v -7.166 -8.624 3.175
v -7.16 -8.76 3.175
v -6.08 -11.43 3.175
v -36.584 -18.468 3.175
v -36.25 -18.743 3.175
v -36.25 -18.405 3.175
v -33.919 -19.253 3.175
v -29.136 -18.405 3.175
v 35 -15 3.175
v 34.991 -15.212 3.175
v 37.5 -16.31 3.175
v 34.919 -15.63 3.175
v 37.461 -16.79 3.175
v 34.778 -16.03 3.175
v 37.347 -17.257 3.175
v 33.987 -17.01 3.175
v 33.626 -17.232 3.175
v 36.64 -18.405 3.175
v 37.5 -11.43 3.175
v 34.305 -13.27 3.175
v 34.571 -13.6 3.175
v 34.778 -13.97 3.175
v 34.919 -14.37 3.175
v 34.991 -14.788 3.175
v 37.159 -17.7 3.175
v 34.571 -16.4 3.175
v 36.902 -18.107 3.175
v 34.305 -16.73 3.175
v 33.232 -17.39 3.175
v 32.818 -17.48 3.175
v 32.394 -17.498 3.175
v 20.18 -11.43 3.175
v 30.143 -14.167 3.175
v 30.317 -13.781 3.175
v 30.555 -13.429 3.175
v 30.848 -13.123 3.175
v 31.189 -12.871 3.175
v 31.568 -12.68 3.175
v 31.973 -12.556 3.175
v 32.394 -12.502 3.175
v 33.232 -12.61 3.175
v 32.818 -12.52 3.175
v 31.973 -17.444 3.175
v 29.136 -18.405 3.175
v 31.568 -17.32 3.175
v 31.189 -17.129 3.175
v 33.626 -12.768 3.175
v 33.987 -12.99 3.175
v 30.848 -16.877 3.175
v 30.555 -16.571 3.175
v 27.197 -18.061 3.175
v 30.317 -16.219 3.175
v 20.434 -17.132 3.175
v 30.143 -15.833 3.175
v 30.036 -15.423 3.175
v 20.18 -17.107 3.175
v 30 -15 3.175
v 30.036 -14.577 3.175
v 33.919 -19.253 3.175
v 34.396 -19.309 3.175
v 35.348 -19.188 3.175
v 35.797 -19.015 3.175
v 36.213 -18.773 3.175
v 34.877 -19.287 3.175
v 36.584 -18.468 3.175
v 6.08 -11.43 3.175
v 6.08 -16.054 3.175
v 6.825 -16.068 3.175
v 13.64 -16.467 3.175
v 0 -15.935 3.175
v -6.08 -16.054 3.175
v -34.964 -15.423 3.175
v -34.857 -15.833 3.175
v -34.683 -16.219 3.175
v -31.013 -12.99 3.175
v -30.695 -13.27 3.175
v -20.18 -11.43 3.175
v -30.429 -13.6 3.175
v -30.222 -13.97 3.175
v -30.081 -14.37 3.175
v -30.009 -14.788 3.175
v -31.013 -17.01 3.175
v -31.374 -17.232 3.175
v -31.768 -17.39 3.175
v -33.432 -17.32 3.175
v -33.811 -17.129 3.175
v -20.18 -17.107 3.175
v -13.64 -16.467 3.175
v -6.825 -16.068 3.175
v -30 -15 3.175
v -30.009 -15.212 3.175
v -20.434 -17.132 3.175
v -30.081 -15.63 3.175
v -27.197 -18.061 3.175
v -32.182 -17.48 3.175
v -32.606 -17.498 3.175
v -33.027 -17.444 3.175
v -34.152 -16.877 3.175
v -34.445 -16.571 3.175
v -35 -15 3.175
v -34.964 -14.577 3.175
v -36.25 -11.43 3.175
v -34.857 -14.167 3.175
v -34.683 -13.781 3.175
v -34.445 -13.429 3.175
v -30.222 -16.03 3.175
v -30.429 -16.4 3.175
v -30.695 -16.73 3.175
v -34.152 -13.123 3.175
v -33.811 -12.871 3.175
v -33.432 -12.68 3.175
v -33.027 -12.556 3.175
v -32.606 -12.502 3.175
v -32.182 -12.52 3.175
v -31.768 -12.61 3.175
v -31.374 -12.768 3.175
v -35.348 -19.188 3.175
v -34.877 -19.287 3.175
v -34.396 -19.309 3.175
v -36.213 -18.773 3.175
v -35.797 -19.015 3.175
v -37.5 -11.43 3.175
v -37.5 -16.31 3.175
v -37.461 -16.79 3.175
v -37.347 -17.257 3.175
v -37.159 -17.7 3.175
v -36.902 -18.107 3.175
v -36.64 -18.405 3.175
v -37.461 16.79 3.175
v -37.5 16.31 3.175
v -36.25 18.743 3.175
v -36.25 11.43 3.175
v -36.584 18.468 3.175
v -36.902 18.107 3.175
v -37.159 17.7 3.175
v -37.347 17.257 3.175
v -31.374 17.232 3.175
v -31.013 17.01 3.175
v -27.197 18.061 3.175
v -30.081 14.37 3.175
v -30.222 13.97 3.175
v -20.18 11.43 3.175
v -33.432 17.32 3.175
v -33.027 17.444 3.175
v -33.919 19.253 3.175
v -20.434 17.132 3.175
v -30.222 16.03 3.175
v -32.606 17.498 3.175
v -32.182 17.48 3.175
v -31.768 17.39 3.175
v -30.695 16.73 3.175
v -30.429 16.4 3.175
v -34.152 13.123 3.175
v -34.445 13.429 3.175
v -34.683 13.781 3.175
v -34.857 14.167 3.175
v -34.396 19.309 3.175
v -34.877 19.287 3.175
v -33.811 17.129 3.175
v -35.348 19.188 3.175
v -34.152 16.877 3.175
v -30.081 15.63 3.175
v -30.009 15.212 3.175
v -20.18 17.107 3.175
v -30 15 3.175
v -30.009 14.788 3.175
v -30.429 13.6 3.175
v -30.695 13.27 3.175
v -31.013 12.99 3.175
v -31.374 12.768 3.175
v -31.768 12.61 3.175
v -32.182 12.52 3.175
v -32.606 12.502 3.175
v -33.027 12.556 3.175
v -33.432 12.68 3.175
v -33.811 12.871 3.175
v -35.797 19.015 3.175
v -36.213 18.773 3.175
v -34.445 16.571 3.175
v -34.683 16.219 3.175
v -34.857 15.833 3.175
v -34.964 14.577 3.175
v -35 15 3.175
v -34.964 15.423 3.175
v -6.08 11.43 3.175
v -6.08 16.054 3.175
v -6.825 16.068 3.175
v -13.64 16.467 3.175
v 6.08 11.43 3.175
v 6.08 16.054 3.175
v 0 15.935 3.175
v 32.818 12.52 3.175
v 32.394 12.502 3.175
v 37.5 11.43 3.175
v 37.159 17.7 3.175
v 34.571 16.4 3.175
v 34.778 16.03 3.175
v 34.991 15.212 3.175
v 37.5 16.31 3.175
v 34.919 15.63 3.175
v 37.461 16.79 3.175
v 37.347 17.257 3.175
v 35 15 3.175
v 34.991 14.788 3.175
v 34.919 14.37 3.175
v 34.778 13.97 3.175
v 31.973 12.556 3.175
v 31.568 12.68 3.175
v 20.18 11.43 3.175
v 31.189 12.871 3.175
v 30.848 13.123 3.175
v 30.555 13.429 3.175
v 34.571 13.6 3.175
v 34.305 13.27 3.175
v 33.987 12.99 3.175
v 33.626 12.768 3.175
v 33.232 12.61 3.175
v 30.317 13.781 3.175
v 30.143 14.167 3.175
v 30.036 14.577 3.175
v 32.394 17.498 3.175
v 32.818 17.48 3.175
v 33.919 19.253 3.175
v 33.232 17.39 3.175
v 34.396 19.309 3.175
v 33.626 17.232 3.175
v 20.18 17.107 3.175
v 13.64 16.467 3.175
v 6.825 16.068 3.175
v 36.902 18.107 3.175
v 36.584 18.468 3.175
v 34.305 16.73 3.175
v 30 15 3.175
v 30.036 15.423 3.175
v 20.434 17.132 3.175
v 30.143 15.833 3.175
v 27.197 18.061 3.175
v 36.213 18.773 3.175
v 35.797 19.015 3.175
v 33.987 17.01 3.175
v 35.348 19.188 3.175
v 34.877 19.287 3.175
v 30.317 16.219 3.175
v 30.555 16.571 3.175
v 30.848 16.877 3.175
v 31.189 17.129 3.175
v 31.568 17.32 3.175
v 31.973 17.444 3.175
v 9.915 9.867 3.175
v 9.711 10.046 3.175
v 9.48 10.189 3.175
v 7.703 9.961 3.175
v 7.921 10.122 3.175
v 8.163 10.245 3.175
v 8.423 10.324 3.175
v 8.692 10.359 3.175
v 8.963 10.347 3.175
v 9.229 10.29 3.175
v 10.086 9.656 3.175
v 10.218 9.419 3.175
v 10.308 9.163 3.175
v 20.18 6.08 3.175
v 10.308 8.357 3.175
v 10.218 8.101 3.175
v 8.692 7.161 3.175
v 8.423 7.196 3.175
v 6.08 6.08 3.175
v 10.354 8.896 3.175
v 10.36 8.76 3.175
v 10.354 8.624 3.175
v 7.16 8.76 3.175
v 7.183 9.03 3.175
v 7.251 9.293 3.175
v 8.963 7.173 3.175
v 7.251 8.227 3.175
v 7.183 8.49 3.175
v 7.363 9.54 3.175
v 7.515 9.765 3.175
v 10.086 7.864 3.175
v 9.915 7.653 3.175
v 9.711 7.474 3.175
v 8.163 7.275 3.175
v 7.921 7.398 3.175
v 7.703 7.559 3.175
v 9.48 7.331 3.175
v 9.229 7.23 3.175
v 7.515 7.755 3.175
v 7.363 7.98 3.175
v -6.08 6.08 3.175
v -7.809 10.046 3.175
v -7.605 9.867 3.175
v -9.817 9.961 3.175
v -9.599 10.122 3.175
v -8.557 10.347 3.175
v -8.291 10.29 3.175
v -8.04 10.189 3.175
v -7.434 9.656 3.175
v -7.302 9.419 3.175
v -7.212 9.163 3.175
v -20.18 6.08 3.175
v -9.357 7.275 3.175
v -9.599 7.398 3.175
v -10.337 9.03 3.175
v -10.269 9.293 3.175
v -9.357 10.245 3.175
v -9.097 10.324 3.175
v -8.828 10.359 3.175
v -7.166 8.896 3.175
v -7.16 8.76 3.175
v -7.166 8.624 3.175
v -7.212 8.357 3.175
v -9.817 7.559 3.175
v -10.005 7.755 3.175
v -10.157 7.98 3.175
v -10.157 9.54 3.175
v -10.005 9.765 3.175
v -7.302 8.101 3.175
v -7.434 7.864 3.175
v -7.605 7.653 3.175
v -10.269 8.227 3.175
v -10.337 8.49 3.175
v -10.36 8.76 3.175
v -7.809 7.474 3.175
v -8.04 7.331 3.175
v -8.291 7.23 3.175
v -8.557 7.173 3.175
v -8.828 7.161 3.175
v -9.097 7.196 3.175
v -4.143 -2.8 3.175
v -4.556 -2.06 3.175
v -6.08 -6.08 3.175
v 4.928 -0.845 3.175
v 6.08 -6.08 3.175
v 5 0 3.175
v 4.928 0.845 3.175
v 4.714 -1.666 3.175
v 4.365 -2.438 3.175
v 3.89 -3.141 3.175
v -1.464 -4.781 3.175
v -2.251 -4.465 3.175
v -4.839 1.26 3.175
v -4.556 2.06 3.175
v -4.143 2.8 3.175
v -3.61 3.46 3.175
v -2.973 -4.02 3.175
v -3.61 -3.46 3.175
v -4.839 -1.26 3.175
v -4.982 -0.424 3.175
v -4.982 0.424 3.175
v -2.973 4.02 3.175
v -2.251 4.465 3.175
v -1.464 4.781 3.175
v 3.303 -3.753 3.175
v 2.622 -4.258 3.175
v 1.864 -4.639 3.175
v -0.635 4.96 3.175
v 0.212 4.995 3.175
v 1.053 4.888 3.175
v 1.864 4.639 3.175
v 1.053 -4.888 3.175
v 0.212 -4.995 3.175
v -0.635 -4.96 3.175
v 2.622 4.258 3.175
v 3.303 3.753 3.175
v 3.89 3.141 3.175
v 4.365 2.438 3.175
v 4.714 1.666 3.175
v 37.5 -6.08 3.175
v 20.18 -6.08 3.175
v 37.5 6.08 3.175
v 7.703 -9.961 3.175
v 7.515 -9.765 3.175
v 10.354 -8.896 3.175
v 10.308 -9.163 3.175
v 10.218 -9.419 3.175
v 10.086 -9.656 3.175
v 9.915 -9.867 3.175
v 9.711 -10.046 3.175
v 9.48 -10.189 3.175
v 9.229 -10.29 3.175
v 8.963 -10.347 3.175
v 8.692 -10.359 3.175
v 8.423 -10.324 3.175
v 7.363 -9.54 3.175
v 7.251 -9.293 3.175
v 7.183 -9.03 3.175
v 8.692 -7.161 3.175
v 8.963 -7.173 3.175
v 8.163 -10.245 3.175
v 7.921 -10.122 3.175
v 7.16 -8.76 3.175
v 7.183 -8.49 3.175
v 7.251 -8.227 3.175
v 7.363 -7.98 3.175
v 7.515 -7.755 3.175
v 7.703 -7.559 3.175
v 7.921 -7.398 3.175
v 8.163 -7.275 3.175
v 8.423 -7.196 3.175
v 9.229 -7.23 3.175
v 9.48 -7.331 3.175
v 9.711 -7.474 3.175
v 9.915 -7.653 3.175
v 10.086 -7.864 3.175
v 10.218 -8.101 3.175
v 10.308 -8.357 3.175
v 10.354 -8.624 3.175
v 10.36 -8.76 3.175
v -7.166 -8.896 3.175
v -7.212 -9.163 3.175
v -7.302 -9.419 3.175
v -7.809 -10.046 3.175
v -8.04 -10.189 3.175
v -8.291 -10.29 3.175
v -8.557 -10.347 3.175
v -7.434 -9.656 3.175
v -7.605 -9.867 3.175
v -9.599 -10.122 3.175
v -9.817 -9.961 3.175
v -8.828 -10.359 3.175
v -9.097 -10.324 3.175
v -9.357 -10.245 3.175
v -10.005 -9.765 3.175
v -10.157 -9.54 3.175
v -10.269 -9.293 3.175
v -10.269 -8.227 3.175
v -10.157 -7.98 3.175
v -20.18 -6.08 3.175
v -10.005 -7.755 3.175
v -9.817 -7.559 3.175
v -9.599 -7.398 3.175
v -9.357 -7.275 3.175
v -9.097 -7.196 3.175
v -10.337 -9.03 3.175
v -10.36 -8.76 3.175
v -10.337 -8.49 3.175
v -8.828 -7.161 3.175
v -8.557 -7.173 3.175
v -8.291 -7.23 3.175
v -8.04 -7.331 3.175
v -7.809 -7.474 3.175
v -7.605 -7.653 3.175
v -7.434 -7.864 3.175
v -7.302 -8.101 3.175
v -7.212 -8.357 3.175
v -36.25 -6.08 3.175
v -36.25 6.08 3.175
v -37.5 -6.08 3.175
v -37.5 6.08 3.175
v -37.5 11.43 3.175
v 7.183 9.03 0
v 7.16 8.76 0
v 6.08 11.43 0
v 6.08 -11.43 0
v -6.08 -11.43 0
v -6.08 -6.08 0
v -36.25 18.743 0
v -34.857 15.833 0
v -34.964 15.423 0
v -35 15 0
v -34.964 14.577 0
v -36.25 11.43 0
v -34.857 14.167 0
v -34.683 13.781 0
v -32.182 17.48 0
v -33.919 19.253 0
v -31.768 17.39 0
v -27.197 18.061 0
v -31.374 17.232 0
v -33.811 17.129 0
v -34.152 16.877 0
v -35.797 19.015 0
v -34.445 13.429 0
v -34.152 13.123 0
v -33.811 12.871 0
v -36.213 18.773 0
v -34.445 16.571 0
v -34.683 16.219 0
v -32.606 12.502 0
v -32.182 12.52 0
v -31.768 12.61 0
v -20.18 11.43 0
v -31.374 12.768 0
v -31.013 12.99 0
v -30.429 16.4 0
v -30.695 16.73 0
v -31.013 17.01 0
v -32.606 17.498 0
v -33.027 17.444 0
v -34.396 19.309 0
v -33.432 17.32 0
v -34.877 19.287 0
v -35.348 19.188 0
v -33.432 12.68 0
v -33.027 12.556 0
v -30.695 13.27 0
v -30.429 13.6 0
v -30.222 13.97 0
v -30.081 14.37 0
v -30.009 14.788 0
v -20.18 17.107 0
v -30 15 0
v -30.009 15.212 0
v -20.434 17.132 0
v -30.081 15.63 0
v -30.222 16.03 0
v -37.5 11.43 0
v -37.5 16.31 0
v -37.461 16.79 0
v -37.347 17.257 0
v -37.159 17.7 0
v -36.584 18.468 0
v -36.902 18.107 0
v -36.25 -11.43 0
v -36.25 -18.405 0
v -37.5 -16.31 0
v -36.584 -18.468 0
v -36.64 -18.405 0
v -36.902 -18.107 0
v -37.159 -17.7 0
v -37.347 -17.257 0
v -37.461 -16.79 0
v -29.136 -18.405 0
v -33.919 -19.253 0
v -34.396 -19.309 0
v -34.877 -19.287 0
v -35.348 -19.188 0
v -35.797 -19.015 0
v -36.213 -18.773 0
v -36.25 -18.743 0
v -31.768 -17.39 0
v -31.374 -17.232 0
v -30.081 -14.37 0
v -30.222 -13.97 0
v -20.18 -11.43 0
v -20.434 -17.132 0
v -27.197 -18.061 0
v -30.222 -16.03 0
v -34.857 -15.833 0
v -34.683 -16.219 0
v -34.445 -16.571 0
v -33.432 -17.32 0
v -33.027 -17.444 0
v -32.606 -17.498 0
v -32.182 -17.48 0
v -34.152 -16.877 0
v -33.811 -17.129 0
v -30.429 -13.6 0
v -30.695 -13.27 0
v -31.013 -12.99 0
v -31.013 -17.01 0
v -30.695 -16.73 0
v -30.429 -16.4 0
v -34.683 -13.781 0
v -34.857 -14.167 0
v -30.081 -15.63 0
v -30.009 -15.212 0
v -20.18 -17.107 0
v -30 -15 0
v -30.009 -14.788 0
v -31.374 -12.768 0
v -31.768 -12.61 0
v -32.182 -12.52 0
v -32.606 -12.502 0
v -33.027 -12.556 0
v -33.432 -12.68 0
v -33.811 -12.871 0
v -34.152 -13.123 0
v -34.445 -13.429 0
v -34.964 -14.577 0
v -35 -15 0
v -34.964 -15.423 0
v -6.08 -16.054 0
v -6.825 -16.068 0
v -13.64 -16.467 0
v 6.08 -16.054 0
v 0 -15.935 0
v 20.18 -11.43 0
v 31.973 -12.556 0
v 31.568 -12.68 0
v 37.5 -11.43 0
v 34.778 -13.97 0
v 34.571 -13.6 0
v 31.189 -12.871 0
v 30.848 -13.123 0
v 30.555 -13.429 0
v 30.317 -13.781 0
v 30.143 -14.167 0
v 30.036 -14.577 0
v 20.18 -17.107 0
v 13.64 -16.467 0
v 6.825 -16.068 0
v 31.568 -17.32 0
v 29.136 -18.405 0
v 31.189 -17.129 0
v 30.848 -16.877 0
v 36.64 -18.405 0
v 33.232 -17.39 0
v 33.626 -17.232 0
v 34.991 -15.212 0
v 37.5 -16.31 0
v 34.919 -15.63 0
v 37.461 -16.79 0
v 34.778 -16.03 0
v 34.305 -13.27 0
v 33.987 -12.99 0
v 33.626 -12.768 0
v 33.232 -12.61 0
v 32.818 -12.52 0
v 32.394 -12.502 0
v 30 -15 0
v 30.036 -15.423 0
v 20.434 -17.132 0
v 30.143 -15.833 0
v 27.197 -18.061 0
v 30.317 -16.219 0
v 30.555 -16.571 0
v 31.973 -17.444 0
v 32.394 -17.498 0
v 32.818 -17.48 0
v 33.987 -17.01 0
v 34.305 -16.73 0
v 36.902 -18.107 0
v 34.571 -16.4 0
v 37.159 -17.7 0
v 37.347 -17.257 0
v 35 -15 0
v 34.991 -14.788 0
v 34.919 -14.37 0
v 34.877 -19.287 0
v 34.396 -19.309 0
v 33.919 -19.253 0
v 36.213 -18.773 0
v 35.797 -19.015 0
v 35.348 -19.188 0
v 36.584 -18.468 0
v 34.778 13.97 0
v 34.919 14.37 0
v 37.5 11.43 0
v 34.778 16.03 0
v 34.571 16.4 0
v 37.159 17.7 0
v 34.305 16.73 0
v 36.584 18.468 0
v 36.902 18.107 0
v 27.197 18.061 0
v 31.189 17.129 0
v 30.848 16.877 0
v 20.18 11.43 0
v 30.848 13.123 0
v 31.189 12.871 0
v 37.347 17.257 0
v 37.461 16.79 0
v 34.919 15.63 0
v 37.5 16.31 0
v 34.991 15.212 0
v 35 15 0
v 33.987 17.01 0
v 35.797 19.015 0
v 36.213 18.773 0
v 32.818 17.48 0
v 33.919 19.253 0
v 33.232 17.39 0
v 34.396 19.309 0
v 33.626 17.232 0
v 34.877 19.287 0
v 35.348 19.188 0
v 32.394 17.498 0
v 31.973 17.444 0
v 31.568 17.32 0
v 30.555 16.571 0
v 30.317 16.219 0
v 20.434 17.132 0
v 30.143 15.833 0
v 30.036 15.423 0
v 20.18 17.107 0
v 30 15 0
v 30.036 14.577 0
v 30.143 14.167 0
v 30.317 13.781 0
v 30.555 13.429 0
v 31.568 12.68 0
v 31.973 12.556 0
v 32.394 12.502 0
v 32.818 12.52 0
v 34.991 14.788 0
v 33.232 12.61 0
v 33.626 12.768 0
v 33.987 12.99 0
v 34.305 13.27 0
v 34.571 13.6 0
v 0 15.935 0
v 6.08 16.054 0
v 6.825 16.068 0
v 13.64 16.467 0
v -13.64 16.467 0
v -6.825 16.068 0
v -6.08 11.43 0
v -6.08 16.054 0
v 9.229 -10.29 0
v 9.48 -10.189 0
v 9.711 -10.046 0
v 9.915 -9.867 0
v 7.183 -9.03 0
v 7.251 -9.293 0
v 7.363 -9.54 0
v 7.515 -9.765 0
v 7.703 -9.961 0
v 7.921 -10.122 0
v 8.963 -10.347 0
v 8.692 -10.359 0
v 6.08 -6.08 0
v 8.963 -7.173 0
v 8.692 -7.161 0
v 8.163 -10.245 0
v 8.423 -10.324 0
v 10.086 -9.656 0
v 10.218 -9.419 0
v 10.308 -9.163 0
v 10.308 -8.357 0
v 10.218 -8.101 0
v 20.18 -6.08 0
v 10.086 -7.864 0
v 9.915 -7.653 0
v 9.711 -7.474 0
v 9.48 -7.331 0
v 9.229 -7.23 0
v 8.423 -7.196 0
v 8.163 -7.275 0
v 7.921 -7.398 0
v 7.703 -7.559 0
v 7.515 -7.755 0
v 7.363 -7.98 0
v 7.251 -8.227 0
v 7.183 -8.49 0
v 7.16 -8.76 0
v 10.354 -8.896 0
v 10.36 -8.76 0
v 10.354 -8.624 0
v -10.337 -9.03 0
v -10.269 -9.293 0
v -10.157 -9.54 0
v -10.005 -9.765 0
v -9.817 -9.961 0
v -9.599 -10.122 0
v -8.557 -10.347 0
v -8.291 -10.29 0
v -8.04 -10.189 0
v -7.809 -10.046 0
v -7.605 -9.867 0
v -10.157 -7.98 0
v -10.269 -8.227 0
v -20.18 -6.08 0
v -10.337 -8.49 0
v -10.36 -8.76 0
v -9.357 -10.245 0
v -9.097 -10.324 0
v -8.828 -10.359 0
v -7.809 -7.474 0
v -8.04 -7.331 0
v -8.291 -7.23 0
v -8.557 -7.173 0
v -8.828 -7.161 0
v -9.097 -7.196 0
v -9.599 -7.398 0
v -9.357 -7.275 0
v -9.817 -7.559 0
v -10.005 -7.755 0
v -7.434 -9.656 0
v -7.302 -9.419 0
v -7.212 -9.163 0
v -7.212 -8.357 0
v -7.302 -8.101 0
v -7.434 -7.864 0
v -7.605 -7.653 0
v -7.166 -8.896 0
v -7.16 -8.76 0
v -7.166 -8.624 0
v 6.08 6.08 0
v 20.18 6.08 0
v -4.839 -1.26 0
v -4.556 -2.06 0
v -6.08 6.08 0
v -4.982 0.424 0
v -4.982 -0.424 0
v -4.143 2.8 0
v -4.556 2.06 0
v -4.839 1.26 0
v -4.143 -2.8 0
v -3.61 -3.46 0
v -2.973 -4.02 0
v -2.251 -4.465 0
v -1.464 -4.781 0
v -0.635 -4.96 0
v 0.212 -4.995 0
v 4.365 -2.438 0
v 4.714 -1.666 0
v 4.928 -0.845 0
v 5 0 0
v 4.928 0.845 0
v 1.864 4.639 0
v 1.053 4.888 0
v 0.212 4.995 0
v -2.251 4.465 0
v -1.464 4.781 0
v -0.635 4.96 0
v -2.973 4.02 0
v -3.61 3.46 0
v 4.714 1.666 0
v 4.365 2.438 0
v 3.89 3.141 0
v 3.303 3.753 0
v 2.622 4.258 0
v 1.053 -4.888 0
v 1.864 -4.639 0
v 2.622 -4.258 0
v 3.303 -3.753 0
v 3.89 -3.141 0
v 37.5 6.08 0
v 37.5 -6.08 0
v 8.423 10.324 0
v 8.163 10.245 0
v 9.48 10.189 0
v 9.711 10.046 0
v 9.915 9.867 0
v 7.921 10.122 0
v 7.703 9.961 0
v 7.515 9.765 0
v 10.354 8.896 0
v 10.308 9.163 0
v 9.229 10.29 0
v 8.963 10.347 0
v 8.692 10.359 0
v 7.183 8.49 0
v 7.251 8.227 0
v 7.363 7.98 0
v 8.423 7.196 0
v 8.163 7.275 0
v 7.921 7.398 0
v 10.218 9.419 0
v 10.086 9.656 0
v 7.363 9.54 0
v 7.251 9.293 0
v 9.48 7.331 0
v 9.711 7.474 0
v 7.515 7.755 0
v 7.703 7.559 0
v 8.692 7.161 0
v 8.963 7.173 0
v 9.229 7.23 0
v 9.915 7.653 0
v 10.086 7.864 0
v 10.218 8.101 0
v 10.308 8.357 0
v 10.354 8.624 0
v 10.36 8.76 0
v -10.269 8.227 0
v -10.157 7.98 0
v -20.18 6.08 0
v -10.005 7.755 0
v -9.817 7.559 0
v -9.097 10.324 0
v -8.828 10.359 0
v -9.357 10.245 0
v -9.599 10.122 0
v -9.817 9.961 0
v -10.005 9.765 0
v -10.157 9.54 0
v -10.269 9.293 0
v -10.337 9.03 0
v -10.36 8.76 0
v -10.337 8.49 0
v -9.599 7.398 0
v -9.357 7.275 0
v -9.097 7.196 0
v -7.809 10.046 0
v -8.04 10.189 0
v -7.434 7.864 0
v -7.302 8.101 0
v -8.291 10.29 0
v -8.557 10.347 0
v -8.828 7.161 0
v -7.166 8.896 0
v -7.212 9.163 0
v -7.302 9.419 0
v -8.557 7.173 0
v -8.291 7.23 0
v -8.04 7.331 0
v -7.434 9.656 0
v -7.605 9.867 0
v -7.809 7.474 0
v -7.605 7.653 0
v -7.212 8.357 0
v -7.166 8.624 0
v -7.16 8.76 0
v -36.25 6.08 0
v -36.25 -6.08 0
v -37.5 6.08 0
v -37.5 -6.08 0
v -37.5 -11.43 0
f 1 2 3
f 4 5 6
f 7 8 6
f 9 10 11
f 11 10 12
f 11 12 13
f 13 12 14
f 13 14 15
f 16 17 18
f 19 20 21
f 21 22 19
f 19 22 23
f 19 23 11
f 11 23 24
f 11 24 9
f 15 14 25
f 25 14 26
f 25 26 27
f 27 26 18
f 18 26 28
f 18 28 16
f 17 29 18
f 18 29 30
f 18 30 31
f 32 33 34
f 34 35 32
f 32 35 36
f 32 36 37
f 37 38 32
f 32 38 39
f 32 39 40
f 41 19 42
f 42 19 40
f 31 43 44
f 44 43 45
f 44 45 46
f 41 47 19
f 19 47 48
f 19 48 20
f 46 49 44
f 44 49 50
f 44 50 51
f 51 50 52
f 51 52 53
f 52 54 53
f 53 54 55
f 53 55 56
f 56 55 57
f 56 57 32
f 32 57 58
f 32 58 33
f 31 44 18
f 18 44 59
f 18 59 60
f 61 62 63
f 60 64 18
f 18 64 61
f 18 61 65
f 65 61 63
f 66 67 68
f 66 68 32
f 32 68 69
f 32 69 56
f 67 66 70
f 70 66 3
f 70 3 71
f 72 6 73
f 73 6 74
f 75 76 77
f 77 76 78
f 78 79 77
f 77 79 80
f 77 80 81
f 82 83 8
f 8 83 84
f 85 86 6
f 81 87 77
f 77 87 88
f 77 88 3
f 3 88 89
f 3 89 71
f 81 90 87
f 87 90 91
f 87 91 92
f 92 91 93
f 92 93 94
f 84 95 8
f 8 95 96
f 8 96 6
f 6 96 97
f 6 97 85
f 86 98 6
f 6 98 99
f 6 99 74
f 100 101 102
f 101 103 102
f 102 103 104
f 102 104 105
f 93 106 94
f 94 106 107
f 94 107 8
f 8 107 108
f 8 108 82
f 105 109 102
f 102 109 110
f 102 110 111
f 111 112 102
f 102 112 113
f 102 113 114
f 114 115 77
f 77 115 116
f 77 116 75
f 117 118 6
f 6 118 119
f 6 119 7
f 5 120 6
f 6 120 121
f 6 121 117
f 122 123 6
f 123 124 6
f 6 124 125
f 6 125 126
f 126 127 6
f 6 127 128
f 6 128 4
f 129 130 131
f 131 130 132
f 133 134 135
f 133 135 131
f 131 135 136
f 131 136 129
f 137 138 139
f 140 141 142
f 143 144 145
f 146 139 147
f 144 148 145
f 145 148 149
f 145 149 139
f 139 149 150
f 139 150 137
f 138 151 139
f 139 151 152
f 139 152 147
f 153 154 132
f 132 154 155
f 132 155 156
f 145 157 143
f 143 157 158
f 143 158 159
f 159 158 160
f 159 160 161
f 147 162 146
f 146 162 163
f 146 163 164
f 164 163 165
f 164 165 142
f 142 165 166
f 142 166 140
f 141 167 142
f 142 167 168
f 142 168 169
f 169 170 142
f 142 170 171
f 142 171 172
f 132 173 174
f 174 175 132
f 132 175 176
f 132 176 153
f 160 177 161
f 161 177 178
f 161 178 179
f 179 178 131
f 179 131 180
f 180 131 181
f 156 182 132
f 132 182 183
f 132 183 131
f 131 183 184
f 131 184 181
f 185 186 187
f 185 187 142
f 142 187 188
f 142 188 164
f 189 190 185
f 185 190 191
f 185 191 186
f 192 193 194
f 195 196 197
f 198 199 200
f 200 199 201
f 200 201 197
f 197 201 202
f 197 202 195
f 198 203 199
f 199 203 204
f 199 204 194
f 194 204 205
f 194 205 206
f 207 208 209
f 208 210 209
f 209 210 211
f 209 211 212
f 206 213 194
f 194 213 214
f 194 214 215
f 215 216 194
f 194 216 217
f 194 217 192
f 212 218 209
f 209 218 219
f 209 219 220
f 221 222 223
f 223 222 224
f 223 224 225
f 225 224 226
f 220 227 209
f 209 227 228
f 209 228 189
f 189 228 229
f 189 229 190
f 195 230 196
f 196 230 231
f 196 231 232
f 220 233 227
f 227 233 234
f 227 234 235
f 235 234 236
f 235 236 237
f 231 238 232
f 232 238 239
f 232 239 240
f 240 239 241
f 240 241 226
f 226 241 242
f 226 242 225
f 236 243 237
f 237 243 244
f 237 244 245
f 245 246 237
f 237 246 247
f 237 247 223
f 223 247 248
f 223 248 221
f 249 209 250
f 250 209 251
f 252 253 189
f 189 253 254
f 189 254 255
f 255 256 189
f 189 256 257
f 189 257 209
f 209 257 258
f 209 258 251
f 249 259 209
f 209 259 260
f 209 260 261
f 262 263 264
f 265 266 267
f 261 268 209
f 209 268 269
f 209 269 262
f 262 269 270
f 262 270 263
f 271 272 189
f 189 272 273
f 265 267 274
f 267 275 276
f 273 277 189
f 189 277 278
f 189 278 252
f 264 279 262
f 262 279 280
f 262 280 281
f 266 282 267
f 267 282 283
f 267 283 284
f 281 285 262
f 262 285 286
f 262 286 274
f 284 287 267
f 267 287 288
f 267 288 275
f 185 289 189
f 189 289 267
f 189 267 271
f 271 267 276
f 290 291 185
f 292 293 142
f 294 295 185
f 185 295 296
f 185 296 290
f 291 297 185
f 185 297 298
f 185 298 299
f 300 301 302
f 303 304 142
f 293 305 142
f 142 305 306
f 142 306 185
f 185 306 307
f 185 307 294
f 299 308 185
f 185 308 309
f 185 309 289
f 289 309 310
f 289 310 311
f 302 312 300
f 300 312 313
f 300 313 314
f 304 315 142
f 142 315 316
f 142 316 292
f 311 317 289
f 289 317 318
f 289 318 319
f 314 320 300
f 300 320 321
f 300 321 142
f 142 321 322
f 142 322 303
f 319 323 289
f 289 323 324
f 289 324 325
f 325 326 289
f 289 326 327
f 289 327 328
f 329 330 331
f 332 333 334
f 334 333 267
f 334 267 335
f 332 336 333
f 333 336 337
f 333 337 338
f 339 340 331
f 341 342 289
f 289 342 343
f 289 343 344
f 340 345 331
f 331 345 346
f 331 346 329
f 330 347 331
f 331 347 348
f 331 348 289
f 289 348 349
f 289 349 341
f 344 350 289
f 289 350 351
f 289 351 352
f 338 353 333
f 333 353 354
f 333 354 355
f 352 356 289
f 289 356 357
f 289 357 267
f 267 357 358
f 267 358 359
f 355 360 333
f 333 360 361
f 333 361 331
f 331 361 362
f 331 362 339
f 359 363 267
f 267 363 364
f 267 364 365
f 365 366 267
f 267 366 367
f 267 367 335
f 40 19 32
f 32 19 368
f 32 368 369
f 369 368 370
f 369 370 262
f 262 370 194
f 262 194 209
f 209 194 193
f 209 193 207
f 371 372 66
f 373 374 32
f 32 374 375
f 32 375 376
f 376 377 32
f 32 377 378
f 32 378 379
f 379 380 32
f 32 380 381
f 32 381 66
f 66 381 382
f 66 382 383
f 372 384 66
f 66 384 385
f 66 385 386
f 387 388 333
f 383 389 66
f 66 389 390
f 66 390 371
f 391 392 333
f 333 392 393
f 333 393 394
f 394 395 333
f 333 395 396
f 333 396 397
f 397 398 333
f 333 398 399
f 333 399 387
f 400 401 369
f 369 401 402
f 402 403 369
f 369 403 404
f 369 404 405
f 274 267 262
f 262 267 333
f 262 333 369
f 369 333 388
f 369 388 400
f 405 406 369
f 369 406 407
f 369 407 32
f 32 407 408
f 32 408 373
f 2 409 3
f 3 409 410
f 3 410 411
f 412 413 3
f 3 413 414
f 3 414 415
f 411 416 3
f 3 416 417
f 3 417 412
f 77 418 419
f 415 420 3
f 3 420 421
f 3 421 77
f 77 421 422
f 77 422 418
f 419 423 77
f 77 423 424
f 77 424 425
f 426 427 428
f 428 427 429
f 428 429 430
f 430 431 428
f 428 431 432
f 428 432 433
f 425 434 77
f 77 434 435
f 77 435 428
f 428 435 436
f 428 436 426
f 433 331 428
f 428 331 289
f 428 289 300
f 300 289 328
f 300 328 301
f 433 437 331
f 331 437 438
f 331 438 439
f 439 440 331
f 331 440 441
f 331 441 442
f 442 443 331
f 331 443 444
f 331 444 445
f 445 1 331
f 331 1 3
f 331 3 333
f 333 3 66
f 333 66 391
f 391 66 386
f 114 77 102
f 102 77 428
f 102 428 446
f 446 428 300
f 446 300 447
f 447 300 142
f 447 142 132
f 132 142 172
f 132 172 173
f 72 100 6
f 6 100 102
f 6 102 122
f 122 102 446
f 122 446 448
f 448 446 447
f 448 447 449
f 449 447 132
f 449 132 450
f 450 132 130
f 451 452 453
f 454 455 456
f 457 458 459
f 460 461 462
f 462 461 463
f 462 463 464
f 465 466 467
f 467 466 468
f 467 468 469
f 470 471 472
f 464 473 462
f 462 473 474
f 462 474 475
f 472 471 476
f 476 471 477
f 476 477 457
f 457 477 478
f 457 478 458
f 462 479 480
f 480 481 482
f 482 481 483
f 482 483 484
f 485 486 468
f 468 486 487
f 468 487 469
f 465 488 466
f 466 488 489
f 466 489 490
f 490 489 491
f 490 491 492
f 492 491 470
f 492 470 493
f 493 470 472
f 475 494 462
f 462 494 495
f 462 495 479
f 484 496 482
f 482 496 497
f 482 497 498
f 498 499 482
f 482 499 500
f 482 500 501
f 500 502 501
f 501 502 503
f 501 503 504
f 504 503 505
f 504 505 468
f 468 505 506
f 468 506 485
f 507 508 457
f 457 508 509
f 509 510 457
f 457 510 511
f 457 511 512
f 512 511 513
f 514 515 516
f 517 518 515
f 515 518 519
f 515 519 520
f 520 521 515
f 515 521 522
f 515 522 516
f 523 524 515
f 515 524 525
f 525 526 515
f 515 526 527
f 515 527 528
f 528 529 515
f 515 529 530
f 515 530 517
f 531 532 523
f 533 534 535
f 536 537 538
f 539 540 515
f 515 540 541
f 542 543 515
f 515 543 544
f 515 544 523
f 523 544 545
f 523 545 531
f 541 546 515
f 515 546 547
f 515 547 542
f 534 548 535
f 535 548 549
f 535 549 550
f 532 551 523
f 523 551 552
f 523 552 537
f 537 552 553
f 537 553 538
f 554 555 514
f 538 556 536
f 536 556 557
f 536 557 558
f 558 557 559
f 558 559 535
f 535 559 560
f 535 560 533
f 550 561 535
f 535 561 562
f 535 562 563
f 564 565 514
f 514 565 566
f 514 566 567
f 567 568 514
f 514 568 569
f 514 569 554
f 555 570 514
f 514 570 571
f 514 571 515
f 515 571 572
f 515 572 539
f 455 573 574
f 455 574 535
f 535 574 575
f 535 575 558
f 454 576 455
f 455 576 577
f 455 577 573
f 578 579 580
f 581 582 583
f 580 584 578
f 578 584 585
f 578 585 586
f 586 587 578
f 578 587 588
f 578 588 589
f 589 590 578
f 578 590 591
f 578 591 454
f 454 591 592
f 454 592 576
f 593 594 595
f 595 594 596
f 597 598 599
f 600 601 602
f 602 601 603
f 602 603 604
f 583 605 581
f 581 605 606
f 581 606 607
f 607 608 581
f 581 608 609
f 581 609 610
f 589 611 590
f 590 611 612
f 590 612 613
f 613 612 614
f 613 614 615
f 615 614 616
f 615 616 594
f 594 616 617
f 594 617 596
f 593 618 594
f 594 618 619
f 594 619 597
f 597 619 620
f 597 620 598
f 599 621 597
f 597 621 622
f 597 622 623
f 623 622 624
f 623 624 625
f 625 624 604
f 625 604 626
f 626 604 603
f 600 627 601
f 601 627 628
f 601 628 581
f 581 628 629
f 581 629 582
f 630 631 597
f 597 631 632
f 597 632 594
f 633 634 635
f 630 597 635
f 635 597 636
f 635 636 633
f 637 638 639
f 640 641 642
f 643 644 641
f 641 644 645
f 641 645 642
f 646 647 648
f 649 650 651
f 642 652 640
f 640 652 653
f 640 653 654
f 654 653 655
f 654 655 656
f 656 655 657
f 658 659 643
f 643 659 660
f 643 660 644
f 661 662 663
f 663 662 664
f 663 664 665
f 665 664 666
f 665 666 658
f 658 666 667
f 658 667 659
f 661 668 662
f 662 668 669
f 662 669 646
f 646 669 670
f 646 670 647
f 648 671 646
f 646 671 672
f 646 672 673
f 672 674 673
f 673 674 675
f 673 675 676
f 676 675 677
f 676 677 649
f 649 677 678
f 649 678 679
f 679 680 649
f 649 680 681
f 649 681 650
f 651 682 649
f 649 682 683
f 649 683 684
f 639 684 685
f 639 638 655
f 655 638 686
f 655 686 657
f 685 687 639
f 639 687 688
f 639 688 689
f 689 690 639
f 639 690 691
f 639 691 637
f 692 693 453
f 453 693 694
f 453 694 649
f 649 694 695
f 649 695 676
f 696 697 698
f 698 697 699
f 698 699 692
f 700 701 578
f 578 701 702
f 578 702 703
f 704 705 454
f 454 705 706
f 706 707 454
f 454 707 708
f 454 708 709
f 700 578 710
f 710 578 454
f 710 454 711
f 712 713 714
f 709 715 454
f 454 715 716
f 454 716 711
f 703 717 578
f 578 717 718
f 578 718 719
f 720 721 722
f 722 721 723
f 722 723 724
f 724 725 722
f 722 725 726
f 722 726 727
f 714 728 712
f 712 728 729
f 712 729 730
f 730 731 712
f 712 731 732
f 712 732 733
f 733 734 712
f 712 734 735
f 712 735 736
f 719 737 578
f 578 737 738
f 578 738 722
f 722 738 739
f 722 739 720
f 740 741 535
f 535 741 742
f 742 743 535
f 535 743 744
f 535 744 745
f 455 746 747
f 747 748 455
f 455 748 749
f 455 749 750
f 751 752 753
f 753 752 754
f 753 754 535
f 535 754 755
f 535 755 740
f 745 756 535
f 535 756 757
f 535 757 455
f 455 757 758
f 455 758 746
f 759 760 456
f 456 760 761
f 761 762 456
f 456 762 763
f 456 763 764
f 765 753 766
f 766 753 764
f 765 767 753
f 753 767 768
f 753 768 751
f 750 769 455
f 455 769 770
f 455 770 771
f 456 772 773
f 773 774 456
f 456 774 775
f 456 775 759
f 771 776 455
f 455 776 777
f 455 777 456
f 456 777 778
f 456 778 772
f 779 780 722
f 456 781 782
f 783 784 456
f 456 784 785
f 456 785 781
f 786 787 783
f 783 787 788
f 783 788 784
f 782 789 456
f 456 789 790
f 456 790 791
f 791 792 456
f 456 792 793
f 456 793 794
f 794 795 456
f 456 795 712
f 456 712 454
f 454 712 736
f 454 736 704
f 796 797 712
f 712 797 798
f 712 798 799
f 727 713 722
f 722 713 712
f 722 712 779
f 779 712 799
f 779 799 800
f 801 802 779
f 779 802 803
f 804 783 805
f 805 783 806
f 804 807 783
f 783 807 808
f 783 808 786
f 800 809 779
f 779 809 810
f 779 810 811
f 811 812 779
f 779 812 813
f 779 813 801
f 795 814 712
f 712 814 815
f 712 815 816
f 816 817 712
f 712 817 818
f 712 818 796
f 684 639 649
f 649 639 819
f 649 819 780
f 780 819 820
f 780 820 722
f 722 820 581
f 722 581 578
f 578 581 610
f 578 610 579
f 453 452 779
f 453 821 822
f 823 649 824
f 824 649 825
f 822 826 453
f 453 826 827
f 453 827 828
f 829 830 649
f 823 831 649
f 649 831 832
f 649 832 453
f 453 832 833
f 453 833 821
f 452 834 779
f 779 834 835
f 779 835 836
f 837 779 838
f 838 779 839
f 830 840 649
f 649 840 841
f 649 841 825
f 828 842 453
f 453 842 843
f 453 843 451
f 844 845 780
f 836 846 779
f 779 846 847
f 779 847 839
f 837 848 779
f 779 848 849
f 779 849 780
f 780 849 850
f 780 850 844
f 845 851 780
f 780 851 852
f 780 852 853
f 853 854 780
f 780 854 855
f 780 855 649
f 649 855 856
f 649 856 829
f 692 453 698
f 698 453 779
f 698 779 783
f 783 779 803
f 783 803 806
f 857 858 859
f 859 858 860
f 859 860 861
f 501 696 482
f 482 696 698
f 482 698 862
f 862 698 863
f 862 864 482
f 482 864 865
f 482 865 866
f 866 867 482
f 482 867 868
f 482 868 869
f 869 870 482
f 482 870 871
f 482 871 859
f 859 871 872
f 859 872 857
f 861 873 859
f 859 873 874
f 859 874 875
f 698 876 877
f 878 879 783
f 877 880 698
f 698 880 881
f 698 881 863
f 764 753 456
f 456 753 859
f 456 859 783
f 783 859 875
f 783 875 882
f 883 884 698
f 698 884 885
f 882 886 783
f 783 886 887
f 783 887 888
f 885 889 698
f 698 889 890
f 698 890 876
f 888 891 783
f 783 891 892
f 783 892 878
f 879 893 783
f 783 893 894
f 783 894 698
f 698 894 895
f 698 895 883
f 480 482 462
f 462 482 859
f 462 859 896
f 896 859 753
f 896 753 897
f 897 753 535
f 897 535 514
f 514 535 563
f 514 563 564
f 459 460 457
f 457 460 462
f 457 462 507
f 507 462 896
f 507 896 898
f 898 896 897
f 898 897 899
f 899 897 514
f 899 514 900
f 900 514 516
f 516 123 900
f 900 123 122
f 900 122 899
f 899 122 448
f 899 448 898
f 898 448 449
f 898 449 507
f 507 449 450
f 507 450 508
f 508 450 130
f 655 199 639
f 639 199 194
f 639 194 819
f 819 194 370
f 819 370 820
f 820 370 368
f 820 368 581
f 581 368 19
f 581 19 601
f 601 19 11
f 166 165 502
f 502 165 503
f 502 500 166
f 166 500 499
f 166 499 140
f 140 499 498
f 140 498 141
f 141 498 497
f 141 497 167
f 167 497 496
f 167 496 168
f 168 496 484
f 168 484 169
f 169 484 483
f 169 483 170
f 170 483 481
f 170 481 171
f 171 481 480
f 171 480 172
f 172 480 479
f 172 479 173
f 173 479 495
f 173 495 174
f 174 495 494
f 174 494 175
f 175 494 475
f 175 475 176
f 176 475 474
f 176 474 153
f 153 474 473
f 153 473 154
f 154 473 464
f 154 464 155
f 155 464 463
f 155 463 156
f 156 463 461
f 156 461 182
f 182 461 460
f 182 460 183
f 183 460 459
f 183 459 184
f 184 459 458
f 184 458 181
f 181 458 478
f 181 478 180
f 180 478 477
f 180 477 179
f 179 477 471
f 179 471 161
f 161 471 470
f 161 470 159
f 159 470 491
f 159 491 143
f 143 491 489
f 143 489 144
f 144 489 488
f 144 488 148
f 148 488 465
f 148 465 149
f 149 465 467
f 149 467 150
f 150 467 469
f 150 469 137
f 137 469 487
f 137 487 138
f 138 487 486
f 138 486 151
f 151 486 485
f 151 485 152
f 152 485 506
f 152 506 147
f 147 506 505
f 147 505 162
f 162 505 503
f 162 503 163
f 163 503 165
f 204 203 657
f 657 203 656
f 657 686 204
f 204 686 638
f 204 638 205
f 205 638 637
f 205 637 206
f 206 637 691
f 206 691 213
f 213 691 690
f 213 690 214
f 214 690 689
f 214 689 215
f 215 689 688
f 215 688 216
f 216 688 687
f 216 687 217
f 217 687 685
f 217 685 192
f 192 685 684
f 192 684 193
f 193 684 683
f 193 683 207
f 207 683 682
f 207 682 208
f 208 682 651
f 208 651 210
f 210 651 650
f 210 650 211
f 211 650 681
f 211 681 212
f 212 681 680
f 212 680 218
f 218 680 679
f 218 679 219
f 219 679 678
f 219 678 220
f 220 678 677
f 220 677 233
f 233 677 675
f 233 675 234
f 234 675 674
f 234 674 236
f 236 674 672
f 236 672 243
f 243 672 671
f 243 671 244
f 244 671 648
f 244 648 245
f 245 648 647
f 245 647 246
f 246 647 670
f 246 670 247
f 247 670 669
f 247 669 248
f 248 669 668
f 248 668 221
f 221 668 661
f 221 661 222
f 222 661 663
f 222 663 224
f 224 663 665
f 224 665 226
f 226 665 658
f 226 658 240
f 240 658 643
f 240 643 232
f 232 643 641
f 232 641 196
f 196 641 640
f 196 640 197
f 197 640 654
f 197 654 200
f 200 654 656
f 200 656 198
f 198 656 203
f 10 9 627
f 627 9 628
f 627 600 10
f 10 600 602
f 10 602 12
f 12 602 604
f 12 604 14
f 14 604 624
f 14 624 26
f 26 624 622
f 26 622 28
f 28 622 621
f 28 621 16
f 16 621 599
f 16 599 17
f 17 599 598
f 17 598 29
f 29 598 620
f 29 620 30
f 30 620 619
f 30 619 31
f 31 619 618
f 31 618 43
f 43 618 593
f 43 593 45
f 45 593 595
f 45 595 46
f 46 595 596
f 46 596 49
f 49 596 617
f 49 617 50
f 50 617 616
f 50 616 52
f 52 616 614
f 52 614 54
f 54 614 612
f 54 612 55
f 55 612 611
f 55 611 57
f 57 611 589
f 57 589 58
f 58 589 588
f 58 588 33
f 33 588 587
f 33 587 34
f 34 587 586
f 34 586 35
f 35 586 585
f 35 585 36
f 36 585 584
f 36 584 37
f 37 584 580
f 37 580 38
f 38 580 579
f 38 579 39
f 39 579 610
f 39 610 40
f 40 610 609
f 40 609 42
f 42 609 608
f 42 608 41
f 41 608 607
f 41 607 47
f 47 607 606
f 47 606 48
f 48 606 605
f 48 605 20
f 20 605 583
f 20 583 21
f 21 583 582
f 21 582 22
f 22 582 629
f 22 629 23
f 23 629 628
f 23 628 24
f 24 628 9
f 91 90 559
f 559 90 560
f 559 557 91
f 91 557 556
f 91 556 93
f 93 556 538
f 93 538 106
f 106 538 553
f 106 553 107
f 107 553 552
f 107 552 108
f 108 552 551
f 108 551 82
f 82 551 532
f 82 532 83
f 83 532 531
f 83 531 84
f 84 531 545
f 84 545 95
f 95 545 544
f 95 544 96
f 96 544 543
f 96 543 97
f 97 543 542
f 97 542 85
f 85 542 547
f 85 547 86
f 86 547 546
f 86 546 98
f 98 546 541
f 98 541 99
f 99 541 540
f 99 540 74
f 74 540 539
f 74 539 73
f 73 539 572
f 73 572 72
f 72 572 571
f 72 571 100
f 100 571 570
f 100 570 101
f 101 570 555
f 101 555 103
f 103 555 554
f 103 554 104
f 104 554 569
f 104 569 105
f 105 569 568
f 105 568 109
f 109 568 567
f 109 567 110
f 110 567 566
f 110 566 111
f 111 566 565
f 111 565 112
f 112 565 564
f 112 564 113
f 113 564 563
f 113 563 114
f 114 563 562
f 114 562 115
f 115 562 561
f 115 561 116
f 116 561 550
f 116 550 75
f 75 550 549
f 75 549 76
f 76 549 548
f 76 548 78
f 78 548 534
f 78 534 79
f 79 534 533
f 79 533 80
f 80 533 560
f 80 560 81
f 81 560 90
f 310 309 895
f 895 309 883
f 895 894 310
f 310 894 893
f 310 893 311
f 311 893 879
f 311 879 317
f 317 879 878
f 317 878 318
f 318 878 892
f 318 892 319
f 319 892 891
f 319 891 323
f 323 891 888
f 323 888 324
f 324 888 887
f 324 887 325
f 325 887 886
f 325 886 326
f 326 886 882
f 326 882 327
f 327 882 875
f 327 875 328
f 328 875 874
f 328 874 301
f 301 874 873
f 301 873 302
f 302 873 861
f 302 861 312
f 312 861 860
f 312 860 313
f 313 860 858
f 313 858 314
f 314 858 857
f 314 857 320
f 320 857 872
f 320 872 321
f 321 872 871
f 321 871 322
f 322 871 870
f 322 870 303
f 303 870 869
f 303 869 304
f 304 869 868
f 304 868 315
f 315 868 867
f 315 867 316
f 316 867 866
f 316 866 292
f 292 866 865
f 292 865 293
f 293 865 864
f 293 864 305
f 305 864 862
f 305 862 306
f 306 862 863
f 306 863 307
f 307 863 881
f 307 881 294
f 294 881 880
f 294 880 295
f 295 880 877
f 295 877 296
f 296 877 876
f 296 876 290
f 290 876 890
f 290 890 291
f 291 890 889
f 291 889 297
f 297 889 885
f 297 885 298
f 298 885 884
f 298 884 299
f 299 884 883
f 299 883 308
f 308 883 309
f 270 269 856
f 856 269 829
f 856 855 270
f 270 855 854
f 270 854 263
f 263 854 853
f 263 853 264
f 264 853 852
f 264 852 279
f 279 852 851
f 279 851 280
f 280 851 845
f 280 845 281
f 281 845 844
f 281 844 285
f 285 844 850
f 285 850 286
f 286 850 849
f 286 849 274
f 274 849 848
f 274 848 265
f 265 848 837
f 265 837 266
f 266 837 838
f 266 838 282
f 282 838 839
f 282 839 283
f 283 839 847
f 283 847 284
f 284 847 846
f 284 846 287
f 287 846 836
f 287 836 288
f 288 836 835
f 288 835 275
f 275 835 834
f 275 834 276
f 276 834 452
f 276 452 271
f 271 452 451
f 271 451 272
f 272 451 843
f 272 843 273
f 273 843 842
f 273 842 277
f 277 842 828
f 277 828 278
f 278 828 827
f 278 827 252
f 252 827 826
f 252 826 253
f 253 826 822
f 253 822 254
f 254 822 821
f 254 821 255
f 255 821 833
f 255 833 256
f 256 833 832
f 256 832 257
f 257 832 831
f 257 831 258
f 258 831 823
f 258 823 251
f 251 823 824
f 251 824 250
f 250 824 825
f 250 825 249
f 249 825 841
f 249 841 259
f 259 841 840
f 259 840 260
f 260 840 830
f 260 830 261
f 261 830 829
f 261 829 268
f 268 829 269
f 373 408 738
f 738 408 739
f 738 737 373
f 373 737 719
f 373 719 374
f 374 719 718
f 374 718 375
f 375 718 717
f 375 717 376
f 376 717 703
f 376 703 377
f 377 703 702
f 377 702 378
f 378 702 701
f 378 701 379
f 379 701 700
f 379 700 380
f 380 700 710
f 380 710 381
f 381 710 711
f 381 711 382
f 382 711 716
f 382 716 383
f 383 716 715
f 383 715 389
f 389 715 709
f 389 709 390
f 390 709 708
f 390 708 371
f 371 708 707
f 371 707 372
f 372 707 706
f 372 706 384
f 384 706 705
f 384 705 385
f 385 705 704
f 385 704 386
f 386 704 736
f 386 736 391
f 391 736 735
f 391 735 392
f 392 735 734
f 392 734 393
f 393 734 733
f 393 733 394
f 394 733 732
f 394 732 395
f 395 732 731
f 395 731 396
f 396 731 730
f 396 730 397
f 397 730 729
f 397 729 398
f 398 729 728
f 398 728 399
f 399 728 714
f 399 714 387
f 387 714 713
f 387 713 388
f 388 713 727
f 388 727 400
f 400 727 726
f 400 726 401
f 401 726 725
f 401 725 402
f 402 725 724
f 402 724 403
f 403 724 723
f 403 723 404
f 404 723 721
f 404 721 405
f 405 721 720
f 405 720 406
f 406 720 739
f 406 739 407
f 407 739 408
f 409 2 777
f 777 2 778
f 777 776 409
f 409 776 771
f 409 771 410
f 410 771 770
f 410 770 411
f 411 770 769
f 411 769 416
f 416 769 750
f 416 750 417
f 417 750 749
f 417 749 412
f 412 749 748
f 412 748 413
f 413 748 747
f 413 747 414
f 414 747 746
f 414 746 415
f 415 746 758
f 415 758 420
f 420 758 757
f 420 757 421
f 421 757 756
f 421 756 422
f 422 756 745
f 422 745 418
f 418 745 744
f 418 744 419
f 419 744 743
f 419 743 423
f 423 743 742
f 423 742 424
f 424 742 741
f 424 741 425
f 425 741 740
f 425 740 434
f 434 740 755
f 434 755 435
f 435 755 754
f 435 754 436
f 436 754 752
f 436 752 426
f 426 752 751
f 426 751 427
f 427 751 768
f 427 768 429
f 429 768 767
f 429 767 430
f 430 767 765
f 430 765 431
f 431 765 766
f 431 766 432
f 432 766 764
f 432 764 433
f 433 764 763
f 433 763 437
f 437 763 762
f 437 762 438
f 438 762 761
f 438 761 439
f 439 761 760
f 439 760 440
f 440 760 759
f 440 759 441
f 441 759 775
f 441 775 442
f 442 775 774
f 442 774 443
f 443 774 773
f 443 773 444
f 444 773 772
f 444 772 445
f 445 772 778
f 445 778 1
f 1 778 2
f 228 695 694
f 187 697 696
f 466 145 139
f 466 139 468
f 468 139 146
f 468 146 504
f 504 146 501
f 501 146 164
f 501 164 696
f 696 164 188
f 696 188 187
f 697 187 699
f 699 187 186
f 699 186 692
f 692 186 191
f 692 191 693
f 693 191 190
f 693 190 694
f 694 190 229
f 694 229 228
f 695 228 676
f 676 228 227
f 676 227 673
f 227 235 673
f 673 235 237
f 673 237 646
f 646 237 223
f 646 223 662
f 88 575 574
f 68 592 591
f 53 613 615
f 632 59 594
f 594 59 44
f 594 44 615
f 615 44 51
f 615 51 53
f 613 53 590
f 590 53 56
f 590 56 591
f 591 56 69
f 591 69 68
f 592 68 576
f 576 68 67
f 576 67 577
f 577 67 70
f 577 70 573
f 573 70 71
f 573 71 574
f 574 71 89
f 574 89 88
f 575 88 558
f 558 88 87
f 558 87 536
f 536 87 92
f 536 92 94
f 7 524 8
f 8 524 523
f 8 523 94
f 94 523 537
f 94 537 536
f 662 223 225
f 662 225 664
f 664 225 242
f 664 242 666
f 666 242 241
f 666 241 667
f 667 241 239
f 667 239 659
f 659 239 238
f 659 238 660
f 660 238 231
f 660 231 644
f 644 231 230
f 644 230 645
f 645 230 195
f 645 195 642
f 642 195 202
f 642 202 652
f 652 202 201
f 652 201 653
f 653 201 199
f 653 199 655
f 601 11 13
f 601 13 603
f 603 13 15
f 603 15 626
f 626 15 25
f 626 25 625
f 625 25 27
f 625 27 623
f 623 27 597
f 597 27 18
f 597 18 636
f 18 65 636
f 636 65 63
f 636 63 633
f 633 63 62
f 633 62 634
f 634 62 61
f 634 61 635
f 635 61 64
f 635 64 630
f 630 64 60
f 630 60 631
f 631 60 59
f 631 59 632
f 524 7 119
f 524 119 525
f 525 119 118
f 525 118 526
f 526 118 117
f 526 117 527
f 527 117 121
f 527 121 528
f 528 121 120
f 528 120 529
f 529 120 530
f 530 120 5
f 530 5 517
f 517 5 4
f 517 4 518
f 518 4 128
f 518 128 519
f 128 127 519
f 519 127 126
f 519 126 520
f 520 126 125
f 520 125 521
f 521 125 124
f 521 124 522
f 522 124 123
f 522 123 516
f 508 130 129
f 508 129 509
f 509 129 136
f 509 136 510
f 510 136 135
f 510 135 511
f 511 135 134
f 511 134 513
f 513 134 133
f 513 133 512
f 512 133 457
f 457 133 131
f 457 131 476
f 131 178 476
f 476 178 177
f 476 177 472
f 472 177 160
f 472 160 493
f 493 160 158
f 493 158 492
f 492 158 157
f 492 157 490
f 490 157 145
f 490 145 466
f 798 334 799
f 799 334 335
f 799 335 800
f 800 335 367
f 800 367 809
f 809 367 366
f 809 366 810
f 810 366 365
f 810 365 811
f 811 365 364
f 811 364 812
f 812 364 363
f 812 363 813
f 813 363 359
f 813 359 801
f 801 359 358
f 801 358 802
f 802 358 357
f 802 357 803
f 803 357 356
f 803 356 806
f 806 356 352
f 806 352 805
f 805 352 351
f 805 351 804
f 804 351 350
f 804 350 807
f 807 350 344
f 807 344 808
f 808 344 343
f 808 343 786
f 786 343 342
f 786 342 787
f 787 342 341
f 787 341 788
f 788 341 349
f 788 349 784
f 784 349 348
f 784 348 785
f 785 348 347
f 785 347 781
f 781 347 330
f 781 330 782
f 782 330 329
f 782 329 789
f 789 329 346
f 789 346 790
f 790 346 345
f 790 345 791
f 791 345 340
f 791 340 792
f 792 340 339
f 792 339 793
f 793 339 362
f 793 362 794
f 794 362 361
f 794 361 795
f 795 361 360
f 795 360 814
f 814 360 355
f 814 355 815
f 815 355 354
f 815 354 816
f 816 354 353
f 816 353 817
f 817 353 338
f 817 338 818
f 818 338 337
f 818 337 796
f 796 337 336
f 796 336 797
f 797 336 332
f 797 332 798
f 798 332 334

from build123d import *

# Parameters (mm, degrees)
SKETCH1_W           = 75
SKETCH1_H           = 40
SKETCH1_R           = 2.5
SKETCH1_R_2         = 1.5
BOSS_EXTRUDE1_DEPTH = 3.175
SKETCH2_R           = 175
CUT_EXTRUDE1_DEPTH  = 3.175
FILLET1_R           = 3
SKETCH3_R           = 5
CUT_EXTRUDE2_DEPTH  = 3.175


with BuildPart() as part:
    # Sketch1 → Boss-Extrude1 (new body)
    with BuildSketch(Plane.XY):
        Rectangle(SKETCH1_W, SKETCH1_H)
        with Locations((-32.5, 15)):
            Circle(SKETCH1_R, mode=Mode.SUBTRACT)
        with Locations((32.5, 15)):
            Circle(SKETCH1_R, mode=Mode.SUBTRACT)
        with Locations((32.5, -15)):
            Circle(SKETCH1_R, mode=Mode.SUBTRACT)
        with Locations((-32.5, -15)):
            Circle(SKETCH1_R, mode=Mode.SUBTRACT)
        with Locations((-8.75, 8.75)):
            Circle(SKETCH1_R_2, mode=Mode.SUBTRACT)
        with Locations((8.75, 8.75)):
            Circle(SKETCH1_R_2, mode=Mode.SUBTRACT)
        with Locations((8.75, -8.75)):
            Circle(SKETCH1_R_2, mode=Mode.SUBTRACT)
        with Locations((-8.75, -8.75)):
            Circle(SKETCH1_R_2, mode=Mode.SUBTRACT)
    extrude(amount=BOSS_EXTRUDE1_DEPTH)

    # Sketch2 → Cut-Extrude1 (cut)
    with BuildSketch(Plane.XY.offset(3.175)):
        with Locations((0, 190.93492914)):
            Circle(SKETCH2_R)
        with Locations((0, -190.93492914)):
            Circle(SKETCH2_R)
    extrude(amount=-CUT_EXTRUDE1_DEPTH, mode=Mode.SUBTRACT)

    # Fillet1
    fillet1_edges = [part.edges().sort_by_distance(p)[0] for p in [
        (-37.5, 20, 1.5875),
        (37.5, 20, 1.5875),
        (37.5, -20, 1.5875),
        (-37.5, -20, 1.5875),
    ]]
    fillet(fillet1_edges, radius=FILLET1_R)

    # Sketch3 → Cut-Extrude2 (cut)
    with BuildSketch(Plane.XY.offset(3.175)):
        Circle(SKETCH3_R)
    extrude(amount=-CUT_EXTRUDE2_DEPTH, mode=Mode.SUBTRACT)


solid = part.part
